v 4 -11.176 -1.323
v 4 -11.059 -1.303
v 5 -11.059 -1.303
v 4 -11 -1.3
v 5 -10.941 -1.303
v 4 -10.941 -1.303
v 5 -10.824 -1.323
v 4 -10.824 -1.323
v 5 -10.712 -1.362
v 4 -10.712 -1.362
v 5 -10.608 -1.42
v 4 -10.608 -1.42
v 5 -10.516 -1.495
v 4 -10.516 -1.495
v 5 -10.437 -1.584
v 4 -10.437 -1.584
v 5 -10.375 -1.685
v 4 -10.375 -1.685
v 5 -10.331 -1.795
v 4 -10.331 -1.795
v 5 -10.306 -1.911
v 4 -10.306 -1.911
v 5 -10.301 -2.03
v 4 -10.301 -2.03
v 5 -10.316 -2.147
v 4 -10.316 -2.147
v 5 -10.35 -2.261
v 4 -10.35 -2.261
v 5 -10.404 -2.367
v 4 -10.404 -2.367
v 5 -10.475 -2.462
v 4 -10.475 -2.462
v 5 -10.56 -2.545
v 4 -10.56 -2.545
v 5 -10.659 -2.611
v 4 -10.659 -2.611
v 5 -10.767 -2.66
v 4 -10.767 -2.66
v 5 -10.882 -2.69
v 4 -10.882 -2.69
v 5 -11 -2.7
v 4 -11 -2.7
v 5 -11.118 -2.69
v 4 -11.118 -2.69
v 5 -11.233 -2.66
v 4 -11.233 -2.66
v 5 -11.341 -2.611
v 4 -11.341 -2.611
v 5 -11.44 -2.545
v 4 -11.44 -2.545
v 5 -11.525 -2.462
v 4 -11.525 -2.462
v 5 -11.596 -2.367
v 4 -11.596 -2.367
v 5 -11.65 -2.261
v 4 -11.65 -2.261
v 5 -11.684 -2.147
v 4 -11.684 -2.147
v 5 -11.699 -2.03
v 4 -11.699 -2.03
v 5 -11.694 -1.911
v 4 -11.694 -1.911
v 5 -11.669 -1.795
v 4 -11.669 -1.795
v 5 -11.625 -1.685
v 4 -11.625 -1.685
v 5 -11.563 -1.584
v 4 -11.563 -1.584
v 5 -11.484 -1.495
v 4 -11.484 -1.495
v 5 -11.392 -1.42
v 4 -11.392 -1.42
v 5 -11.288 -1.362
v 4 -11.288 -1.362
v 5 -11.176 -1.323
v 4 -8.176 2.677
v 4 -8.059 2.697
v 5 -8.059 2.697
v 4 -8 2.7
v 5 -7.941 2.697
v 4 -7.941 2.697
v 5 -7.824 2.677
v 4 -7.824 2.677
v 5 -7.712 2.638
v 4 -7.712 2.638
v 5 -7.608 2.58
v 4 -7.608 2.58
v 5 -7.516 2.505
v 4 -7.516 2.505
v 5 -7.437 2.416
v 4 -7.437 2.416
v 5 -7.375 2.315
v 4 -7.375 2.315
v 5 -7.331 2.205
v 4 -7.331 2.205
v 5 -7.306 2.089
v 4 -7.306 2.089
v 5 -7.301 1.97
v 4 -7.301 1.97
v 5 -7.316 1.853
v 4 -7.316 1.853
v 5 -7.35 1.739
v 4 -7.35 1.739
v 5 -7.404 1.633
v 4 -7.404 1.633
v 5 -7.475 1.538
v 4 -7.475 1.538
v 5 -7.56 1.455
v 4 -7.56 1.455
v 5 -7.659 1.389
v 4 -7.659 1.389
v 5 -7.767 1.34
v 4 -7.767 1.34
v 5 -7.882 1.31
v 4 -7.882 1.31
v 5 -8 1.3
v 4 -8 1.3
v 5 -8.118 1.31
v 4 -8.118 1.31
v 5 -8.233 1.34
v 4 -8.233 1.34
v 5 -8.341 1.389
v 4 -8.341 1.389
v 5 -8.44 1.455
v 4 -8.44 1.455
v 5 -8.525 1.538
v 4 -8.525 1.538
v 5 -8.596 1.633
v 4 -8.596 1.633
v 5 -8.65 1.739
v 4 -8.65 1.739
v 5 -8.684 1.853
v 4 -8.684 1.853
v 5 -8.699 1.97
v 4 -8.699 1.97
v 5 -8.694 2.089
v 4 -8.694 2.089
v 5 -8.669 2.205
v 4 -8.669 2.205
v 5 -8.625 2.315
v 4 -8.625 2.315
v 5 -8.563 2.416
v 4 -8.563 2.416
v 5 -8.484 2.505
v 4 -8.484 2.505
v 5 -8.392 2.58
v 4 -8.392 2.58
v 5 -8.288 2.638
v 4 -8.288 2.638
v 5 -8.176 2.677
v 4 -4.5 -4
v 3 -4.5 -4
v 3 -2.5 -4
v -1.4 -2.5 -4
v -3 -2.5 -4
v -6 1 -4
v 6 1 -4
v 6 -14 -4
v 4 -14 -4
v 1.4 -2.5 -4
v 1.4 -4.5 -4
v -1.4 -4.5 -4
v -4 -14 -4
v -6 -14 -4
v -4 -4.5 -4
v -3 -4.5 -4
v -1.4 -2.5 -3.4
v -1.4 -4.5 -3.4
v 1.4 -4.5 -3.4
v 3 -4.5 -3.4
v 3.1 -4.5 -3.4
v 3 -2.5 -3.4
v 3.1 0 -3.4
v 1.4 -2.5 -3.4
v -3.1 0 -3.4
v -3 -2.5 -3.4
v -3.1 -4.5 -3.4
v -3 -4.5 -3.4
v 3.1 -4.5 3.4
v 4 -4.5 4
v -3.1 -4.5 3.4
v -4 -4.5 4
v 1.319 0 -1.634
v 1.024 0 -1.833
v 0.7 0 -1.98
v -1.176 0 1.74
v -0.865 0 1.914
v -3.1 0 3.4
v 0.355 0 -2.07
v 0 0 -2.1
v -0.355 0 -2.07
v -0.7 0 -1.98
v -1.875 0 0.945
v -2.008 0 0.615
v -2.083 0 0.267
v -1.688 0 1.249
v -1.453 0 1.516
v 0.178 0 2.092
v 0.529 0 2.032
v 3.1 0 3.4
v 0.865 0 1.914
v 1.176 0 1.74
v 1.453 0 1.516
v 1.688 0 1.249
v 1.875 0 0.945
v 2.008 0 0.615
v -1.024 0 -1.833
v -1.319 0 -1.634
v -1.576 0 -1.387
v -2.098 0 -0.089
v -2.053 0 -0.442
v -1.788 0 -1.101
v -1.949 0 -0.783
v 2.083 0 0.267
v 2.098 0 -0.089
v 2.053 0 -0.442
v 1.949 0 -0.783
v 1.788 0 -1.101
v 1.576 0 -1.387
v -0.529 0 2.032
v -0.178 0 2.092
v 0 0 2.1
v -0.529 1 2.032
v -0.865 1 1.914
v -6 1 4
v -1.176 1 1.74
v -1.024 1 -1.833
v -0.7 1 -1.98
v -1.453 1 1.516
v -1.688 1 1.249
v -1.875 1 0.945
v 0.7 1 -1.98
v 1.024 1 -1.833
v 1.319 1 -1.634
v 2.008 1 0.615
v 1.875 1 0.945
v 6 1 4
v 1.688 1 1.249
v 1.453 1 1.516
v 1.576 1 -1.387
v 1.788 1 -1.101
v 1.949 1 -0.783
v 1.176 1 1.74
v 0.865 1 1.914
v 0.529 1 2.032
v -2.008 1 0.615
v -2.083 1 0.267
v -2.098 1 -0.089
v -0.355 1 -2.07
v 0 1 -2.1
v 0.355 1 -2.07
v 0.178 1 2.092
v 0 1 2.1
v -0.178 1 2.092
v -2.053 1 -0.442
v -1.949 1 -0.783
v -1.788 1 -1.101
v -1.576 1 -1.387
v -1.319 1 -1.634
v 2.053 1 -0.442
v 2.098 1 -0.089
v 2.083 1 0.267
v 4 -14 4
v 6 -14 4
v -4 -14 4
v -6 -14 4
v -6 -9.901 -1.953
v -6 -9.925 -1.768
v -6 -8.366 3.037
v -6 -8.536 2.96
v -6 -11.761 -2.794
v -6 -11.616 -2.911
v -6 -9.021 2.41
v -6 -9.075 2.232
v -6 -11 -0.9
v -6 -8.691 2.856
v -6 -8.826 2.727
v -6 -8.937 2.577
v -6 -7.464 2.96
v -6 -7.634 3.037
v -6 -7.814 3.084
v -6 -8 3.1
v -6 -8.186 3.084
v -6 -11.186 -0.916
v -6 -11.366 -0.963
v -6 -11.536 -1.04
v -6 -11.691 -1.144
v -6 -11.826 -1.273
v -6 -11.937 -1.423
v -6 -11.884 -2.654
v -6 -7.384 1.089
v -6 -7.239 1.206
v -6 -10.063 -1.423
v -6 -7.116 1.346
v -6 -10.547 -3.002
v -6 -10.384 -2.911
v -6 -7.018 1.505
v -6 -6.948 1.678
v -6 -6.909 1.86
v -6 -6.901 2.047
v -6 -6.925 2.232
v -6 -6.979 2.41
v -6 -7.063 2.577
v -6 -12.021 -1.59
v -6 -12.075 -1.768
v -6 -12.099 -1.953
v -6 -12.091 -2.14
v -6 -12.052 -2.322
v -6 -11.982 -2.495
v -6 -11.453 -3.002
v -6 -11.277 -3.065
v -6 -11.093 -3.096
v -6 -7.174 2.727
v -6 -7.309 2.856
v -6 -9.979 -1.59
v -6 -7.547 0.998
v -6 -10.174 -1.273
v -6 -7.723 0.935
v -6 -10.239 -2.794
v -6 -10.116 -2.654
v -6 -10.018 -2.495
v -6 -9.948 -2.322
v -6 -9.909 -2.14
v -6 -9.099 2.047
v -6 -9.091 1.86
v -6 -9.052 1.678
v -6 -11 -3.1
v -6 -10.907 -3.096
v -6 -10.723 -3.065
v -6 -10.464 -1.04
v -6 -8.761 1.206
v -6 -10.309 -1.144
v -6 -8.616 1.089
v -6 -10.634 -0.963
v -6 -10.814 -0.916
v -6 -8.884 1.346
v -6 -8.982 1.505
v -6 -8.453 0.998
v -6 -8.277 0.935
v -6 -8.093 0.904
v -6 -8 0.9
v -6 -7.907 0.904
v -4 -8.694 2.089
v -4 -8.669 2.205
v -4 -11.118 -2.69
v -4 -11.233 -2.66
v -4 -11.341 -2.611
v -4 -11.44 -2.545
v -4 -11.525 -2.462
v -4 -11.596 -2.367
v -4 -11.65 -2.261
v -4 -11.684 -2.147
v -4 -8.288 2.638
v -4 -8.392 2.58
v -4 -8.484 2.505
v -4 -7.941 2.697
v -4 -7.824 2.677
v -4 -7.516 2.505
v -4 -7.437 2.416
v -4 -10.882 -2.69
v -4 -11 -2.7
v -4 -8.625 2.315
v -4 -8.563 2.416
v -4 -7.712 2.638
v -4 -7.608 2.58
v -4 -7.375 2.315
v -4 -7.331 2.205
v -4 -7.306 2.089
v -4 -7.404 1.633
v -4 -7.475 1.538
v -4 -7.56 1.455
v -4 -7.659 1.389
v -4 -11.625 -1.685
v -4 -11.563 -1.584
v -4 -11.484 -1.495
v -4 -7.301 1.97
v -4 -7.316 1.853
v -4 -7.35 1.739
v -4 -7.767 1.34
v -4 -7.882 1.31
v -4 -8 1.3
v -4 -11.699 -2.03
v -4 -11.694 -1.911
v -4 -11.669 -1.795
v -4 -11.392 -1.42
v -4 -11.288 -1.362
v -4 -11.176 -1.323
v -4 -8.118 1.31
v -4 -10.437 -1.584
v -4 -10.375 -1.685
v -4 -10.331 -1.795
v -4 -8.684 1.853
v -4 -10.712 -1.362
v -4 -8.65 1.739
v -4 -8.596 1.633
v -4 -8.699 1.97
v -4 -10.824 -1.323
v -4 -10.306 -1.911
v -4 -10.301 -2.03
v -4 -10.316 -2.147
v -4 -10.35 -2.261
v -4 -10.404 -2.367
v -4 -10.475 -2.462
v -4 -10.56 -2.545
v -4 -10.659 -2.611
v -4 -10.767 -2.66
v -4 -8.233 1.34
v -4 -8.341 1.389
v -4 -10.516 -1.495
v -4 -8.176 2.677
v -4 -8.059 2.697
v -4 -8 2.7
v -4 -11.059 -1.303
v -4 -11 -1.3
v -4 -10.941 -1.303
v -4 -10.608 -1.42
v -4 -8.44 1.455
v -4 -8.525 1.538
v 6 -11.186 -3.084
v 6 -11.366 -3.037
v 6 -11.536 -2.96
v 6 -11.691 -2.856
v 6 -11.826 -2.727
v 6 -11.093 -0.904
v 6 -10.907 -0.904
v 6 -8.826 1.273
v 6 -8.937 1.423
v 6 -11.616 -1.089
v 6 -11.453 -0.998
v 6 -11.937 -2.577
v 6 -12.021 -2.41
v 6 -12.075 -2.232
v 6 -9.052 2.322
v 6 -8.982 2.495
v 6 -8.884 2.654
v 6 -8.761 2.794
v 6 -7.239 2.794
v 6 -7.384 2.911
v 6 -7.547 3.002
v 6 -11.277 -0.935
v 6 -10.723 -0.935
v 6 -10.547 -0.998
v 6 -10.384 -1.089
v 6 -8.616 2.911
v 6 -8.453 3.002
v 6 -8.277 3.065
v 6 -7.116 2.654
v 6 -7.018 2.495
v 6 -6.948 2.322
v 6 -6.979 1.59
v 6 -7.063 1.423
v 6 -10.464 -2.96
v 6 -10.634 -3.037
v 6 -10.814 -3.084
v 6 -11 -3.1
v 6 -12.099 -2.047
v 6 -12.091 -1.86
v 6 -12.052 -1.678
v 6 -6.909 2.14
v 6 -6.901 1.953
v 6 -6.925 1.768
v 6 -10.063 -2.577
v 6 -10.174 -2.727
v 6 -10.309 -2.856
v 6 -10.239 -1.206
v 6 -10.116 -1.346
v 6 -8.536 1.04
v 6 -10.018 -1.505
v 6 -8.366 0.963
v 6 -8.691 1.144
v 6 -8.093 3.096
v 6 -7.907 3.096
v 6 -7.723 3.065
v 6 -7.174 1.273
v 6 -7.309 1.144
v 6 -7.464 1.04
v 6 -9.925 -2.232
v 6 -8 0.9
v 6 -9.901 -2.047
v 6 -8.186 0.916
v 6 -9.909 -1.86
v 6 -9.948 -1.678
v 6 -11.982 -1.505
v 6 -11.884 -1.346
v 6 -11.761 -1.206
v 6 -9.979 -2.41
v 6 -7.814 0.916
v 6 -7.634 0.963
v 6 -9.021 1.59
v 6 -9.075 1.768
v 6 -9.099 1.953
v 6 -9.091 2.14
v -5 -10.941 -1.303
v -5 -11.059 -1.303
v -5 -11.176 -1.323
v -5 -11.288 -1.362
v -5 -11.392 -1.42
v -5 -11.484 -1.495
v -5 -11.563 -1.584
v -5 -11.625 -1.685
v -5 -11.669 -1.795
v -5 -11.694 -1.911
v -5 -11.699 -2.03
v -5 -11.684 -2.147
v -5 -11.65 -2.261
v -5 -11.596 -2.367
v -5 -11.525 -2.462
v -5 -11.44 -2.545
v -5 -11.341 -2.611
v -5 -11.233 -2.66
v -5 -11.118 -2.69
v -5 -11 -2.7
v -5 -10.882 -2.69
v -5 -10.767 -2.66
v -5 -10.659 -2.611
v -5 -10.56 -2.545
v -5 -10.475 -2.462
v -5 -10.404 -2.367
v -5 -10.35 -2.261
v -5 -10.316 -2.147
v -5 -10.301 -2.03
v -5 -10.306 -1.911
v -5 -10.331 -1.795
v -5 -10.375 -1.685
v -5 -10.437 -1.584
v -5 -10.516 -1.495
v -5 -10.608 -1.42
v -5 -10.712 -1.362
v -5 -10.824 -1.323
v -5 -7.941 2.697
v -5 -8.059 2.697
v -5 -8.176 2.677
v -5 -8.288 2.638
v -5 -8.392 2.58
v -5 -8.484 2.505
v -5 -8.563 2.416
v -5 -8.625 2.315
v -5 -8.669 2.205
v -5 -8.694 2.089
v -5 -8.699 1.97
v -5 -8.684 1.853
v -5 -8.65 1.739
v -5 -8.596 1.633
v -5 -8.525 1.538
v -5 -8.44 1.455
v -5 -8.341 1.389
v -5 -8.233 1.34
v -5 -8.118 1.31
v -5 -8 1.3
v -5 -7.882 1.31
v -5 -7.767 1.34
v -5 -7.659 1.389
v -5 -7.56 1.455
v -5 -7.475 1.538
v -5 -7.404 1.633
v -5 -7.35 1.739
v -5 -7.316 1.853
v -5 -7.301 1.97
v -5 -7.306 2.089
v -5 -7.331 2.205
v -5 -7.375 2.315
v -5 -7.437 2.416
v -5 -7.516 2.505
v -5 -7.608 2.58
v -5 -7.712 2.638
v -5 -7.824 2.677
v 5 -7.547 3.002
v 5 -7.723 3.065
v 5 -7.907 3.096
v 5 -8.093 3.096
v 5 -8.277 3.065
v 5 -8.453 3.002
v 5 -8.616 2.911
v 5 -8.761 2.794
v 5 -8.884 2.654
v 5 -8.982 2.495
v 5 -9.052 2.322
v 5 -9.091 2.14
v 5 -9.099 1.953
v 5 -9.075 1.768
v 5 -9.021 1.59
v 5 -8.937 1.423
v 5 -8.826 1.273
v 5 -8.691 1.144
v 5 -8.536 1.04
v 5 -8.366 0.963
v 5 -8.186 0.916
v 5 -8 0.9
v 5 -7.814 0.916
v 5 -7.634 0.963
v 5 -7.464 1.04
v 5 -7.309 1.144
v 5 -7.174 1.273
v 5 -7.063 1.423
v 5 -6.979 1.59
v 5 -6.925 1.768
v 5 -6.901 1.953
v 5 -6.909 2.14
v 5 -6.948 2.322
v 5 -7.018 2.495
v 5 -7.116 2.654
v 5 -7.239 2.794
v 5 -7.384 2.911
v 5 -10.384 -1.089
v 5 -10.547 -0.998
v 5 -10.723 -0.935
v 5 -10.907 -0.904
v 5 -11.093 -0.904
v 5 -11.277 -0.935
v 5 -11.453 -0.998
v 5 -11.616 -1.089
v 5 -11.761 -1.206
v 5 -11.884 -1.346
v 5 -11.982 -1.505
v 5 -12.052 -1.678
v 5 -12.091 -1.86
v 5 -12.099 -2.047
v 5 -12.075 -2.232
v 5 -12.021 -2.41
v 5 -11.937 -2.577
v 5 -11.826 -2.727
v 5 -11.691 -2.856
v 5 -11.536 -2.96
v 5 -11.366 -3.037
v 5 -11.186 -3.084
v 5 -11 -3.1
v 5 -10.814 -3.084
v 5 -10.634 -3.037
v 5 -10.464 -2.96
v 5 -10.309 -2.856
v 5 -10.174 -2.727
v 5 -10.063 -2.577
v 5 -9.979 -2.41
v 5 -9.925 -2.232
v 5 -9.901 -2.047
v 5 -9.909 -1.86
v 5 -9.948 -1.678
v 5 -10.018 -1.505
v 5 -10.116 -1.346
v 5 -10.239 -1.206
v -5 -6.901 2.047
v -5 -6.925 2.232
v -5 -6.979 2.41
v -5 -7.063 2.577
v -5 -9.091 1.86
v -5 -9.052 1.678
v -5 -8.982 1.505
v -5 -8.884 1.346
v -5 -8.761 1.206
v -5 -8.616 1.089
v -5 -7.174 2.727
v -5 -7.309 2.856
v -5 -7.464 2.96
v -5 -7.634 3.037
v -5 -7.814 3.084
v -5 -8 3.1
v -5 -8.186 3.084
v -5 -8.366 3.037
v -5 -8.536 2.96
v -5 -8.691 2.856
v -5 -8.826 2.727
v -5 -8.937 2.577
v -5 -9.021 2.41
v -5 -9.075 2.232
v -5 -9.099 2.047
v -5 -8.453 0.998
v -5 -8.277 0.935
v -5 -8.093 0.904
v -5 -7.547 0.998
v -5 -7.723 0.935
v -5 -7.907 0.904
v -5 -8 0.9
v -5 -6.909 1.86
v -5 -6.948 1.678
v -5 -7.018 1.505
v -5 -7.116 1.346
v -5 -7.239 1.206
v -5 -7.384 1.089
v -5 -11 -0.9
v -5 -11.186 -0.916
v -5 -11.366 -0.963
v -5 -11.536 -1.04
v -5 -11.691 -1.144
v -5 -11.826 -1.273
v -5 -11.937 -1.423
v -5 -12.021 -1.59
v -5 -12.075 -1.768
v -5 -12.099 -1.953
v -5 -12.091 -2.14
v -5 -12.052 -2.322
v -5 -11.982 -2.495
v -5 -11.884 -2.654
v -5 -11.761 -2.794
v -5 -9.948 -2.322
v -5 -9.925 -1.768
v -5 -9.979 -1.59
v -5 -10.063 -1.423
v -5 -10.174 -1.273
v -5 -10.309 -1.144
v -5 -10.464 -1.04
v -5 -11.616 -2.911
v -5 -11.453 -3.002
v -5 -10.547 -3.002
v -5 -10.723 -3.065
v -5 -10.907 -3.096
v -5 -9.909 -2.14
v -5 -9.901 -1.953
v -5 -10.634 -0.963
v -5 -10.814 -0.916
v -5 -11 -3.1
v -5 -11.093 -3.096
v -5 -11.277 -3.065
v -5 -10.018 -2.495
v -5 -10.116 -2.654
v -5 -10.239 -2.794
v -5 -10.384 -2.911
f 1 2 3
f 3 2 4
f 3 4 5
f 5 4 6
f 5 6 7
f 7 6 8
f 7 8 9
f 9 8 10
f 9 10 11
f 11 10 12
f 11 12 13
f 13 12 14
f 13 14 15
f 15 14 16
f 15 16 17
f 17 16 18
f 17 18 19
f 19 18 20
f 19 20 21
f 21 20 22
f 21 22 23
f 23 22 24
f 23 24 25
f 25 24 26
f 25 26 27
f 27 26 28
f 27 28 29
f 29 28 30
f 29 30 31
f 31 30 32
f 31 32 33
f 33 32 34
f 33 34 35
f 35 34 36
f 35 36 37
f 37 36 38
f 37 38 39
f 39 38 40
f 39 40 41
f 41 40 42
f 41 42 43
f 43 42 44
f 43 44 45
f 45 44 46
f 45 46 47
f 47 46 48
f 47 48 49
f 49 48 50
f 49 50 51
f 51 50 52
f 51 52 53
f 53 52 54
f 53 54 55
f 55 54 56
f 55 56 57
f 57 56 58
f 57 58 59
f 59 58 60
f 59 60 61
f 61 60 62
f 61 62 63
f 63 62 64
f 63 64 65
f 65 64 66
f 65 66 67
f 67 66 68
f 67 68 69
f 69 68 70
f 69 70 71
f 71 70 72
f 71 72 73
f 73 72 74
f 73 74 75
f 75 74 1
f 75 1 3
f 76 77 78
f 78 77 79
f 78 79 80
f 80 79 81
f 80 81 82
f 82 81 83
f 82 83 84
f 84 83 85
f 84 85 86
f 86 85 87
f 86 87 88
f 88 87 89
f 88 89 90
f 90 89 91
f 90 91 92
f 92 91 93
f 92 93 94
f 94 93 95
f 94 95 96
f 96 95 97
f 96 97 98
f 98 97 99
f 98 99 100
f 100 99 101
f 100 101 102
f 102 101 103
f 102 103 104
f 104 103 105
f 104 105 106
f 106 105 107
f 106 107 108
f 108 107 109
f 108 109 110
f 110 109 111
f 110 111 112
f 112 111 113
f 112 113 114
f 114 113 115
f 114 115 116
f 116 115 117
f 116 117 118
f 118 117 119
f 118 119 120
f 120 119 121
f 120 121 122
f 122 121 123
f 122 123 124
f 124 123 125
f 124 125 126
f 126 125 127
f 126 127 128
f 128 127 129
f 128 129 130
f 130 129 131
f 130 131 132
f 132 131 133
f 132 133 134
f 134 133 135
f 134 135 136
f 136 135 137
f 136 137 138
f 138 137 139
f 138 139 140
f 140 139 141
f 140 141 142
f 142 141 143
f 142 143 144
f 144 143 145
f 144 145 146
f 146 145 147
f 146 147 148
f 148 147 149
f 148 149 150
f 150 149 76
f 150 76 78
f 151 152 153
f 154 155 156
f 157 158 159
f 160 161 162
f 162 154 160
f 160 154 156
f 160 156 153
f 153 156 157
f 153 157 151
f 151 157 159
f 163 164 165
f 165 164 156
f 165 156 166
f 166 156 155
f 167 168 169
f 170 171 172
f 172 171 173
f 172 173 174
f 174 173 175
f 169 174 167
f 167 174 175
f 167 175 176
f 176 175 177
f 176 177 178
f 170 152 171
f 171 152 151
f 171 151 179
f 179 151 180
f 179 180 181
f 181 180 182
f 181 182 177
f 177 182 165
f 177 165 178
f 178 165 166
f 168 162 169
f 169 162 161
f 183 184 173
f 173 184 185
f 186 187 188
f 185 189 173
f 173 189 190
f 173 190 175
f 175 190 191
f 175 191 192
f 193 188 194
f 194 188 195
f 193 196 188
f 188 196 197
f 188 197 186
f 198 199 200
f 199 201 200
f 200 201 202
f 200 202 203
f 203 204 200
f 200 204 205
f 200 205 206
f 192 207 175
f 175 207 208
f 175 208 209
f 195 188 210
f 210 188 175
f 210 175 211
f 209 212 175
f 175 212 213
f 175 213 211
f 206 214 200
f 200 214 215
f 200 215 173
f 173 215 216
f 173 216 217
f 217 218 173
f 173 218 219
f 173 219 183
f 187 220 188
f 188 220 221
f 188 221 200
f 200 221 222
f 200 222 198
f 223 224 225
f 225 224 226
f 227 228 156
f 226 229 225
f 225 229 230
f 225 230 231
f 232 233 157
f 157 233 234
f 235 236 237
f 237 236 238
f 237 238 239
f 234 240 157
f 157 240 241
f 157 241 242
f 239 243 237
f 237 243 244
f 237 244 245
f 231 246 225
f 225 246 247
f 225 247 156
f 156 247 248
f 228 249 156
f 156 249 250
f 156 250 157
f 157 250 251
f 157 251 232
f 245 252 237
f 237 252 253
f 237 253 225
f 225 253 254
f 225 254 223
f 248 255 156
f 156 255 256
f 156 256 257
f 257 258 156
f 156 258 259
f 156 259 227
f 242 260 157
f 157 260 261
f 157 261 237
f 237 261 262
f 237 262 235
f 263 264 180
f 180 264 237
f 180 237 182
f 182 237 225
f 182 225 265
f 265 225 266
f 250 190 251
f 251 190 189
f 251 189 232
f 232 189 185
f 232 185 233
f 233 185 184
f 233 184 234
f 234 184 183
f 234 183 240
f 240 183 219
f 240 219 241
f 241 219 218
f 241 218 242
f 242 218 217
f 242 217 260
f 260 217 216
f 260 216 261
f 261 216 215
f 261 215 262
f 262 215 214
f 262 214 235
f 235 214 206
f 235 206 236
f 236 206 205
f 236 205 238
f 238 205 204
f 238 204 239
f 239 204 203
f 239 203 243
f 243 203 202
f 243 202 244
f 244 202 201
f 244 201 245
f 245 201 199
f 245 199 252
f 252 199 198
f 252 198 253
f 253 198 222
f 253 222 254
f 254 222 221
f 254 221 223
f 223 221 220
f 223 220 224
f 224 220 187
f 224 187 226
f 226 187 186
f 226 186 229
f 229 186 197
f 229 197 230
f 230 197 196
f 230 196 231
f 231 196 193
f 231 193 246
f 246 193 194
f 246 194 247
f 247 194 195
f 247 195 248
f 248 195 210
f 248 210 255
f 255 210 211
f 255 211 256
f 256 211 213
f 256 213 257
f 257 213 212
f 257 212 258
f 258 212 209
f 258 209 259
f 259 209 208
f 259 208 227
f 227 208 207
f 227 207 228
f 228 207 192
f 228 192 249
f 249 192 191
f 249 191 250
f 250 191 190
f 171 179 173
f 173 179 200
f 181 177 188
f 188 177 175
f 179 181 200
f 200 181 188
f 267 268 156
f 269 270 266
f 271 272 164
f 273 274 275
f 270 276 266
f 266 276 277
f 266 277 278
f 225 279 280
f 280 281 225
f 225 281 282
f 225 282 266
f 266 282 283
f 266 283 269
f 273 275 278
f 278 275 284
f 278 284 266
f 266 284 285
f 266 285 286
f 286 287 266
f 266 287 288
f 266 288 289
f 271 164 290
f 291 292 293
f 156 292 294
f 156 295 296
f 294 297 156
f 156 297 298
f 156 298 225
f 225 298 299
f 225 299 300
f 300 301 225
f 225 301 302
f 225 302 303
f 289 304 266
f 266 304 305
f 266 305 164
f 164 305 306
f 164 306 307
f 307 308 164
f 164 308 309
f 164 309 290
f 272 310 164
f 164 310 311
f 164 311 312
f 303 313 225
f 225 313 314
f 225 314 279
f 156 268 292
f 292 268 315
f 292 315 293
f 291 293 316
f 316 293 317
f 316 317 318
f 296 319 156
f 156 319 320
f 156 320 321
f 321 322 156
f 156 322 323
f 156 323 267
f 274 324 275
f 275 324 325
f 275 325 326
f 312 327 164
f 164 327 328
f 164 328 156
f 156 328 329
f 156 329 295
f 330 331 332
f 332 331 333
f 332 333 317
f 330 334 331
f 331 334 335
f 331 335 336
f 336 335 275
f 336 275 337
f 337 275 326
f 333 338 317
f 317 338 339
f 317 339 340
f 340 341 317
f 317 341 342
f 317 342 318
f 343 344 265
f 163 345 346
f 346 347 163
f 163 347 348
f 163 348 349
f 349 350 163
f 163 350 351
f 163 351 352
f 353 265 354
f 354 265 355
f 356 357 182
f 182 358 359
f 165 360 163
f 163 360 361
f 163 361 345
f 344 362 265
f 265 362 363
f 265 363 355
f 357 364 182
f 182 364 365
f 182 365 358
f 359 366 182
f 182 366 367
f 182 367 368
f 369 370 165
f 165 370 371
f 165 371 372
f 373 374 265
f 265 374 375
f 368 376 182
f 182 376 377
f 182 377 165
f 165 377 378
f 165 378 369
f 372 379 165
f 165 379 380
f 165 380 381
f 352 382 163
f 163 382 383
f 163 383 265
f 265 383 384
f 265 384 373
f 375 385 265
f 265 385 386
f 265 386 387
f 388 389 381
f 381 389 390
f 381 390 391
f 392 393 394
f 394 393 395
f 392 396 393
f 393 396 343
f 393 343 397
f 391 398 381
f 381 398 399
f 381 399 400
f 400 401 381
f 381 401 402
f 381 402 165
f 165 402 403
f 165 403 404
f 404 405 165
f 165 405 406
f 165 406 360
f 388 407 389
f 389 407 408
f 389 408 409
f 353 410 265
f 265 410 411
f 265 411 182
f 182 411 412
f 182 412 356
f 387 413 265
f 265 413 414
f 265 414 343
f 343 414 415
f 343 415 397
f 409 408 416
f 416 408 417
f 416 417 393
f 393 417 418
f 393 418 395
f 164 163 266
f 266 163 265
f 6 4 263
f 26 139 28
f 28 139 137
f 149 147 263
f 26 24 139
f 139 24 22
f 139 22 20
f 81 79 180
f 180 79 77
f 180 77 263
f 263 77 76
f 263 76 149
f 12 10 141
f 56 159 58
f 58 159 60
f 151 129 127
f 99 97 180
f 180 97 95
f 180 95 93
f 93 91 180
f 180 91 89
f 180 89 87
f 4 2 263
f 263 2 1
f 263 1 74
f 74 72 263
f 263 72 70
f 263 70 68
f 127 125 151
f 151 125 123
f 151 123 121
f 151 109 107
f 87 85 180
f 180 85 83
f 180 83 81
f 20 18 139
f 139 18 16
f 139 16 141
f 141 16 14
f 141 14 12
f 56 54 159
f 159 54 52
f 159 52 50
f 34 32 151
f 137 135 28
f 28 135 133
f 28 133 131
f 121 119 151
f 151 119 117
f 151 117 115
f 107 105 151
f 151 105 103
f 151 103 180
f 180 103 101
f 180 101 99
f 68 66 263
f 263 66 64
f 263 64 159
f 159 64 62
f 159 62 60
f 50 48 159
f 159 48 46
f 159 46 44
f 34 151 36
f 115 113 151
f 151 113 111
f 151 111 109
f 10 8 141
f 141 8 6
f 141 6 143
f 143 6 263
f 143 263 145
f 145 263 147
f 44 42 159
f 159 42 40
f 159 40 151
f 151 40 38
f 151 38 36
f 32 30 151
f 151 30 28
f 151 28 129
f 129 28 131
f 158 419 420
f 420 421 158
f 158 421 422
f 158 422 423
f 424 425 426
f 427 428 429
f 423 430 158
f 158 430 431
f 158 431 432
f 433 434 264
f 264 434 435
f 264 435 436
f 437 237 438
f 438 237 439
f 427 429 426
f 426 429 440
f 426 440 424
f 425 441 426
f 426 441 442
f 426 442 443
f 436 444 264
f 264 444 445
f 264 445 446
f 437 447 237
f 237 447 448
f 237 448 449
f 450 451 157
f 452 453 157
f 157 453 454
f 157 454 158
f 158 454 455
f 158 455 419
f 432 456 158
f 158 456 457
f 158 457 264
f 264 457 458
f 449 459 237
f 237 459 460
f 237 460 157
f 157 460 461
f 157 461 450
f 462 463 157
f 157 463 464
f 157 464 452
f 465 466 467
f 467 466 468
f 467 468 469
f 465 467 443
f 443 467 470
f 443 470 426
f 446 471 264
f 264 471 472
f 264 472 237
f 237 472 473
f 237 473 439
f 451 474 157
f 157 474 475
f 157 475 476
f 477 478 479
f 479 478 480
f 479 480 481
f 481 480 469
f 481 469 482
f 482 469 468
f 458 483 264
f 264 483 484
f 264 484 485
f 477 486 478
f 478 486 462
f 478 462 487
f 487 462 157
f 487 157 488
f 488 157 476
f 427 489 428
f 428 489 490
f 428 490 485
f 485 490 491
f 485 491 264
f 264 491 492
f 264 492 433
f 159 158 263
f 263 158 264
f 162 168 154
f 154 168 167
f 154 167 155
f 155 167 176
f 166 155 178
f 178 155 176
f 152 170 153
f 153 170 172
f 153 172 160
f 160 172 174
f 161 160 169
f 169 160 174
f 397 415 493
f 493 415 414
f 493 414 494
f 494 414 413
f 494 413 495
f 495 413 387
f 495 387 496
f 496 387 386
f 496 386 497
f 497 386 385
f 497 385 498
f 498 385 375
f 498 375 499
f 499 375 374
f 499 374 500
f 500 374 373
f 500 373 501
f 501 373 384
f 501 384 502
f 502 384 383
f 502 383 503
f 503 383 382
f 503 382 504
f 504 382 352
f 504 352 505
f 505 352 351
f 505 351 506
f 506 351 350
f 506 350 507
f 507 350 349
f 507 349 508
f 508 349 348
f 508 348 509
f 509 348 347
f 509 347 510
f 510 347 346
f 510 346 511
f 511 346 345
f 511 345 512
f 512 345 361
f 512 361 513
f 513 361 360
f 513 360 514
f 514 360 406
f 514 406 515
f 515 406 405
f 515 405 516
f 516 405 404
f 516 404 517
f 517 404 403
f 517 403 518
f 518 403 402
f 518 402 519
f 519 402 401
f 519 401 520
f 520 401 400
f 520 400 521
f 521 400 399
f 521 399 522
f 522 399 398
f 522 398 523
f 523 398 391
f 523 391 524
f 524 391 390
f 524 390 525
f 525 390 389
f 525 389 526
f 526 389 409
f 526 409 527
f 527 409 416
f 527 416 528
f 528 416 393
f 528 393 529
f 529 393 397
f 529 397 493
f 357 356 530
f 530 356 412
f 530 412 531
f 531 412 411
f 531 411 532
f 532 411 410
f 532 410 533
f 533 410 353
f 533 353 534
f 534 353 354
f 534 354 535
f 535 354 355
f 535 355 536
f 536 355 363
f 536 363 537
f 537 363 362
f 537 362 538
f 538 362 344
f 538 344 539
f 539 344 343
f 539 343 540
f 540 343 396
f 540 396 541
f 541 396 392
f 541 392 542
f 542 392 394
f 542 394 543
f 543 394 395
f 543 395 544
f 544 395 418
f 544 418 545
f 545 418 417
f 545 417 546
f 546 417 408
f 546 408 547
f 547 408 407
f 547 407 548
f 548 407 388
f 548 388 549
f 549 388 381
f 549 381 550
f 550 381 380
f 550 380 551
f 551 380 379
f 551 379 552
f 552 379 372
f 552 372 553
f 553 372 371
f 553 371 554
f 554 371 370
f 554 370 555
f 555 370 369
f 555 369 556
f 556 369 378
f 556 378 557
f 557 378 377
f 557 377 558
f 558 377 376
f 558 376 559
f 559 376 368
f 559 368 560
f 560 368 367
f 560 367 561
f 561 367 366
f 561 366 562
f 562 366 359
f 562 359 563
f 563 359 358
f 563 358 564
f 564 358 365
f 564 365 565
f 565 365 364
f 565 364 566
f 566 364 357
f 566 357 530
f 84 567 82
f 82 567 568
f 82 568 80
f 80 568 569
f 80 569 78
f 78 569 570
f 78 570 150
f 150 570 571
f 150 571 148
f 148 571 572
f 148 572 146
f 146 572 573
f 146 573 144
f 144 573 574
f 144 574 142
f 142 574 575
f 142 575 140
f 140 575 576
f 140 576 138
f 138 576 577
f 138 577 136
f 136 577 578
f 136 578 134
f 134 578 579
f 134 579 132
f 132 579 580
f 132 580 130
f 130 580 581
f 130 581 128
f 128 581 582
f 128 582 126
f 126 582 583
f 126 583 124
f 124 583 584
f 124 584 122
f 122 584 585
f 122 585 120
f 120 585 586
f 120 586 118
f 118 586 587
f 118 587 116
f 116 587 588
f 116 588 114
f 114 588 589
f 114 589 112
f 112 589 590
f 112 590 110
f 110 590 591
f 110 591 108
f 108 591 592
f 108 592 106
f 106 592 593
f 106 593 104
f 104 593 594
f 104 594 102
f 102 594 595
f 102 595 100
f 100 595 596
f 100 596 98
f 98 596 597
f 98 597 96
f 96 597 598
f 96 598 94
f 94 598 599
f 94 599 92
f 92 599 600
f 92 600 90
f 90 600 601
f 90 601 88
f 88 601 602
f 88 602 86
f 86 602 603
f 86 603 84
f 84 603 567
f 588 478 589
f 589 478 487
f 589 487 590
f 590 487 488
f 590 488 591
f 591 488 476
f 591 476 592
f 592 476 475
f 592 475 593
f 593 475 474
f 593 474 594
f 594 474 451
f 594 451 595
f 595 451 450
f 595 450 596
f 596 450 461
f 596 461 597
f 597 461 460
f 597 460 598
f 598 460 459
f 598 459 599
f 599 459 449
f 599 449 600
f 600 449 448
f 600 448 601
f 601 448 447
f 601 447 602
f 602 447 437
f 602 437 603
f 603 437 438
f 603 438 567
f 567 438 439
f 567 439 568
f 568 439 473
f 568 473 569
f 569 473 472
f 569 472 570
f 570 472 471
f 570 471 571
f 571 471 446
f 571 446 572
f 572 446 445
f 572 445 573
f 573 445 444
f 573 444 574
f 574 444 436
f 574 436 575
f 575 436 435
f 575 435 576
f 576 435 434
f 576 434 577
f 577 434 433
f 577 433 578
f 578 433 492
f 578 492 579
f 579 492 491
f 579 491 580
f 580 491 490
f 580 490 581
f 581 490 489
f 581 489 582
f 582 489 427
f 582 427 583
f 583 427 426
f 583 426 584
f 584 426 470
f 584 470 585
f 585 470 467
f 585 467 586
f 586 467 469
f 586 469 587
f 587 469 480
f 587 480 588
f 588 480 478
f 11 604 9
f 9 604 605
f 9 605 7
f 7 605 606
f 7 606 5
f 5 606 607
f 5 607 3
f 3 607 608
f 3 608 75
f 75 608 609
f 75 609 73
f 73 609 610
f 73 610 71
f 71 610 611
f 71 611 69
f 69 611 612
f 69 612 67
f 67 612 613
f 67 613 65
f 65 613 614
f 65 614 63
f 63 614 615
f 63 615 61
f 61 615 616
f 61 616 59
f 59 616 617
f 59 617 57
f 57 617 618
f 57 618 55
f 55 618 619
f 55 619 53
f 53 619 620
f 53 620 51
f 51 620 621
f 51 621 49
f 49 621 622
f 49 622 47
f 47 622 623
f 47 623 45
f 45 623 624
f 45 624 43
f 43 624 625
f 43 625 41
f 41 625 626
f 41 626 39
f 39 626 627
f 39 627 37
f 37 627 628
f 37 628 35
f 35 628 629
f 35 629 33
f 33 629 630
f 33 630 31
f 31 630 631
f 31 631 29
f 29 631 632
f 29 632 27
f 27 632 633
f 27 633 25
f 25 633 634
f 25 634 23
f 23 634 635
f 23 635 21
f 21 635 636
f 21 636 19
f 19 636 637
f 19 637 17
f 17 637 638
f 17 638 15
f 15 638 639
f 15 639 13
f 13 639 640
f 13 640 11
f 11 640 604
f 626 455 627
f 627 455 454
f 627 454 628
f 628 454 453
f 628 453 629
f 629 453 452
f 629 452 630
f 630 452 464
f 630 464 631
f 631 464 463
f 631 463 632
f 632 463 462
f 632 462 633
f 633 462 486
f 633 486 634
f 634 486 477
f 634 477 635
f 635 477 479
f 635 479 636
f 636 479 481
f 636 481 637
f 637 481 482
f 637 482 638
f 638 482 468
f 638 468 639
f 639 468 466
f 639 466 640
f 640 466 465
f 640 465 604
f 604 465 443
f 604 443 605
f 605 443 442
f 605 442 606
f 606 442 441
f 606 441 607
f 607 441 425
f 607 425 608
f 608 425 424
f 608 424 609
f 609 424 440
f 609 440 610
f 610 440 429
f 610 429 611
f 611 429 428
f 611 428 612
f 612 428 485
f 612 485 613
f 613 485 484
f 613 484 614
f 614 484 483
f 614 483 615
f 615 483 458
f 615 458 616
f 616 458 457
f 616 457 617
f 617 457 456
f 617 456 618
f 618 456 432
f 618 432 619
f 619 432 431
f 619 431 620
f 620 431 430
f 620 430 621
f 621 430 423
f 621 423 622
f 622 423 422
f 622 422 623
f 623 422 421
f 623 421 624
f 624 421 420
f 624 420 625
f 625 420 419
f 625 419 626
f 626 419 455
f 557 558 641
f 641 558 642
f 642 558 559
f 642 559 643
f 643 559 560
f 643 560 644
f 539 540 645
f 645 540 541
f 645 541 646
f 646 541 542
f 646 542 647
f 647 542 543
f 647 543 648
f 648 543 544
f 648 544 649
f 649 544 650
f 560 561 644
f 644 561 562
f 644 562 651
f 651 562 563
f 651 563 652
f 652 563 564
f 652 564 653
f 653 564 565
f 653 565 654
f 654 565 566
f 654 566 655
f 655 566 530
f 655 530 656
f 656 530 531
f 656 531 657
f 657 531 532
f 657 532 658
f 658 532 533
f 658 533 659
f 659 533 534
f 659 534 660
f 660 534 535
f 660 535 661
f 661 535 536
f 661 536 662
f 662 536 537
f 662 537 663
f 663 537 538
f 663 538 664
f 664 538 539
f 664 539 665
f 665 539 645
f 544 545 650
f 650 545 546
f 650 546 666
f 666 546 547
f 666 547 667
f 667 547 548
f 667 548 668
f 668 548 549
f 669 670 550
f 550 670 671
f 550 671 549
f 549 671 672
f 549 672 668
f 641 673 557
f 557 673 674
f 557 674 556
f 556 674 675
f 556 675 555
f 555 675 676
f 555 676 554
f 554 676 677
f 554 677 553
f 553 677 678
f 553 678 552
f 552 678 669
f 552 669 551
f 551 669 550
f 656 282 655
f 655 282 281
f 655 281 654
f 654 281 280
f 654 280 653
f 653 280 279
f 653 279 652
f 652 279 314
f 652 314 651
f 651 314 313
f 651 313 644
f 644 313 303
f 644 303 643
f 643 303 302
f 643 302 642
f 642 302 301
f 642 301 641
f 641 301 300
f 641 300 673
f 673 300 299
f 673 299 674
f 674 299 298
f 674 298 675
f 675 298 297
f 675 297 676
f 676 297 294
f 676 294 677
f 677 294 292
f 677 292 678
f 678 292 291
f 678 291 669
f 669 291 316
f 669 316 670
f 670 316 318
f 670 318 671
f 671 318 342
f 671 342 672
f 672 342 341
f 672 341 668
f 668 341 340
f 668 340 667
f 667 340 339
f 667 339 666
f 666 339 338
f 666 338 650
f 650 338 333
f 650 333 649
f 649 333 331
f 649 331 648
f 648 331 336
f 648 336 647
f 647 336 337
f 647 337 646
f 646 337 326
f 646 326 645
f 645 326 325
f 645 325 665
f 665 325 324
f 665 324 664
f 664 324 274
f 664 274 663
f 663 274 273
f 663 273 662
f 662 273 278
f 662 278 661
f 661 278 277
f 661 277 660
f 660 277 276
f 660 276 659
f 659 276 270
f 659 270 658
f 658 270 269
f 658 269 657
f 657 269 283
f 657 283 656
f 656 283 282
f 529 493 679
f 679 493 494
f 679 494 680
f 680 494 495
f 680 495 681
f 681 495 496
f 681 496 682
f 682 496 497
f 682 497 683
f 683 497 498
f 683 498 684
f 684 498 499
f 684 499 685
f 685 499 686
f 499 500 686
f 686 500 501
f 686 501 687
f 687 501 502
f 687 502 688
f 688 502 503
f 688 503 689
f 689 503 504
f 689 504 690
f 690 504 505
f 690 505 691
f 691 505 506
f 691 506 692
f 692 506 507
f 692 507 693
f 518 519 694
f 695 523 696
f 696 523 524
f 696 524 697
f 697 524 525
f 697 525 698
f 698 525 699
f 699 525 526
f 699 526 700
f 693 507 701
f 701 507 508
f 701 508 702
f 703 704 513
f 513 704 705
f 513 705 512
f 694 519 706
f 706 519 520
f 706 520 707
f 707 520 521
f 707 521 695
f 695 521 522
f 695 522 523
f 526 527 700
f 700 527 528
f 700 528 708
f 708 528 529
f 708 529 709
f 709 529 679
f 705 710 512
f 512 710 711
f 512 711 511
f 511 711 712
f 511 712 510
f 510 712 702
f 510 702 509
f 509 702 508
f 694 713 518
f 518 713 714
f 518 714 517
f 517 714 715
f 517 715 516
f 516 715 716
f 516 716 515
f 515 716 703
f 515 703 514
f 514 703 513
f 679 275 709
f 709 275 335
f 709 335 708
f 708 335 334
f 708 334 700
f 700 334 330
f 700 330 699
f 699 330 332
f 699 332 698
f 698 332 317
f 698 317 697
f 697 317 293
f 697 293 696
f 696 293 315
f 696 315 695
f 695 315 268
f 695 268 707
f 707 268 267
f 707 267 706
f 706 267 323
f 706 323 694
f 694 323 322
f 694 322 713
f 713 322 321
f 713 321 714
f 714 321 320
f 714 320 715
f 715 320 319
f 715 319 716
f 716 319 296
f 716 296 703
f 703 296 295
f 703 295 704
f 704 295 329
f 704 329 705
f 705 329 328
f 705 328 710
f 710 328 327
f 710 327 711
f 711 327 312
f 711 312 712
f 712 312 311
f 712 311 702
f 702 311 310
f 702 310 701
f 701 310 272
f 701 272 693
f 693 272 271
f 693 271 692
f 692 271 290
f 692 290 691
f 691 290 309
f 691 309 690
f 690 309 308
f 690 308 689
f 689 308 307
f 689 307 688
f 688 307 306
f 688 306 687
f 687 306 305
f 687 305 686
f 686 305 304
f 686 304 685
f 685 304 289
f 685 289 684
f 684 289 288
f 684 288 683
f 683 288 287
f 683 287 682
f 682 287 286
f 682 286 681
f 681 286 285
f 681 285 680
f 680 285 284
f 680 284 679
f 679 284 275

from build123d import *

# Parameters (mm, degrees)
SKETCH_1_W          = 8
SKETCH_1_H          = 8
SKETCH_1_R          = 2.1
EXTRUDE_1_DEPTH     = 1
EXTRUDE_START       = 1
SKETCH_1_6_W        = 2
SKETCH_1_6_H        = 8
EXTRUDE_2_DEPTH     = 15
EXTRUDE_2_2_DEPTH   = 15
SKETCH_2_W          = 0.9
SKETCH_2_H          = 0.6
SKETCH_2_W_2        = 6.2
SKETCH_2_H_2        = 6.8
EXTRUDE_3_DEPTH     = 4.5
CUT_EXTRUDE_1_REACH = 19.205
SKETCH_3_W          = 1.6
SKETCH_3_H          = 2
SKETCH_4_R          = 0.7
CUT_EXTRUDE_2_DEPTH = 19.867962264
SKETCH_4_3_R        = 1.1
CUT_EXTRUDE_3_DEPTH = 1
CUT_EXTRUDE_START   = -11
SKETCH_4_4_R        = 1.1
CUT_EXTRUDE_4_DEPTH = 1


with BuildPart() as part:
    # 草图1 → 凸台-拉伸1 (new body)
    with BuildSketch(Plane(origin=(0, 0, 0), x_dir=(1, 0, 0), z_dir=(0, 1, 0))):
        Rectangle(SKETCH_1_W, SKETCH_1_H)
        with Locations(Location((0, 0, 0), (0, 0, 270))):
            Circle(SKETCH_1_R, mode=Mode.SUBTRACT)
    extrude(amount=EXTRUDE_1_DEPTH)



with BuildPart() as body_2:
    # 草图1<6> → 凸台-拉伸2 (new body)
    with BuildSketch(Plane(origin=(0, 0, 0), x_dir=(1, 0, 0), z_dir=(0, 1, 0)).offset(EXTRUDE_START)):
        with Locations((-5, 0)):
            Rectangle(SKETCH_1_6_W, SKETCH_1_6_H)
    extrude(amount=-EXTRUDE_2_DEPTH)


with BuildPart() as body_3:
    # 草图1<6> → Extrude 2 2 (new body)
    with BuildSketch(Plane(origin=(0, 0, 0), x_dir=(1, 0, 0), z_dir=(0, 1, 0)).offset(EXTRUDE_START)):
        with Locations((5, 0)):
            Rectangle(SKETCH_1_6_W, SKETCH_1_6_H)
    extrude(amount=-EXTRUDE_2_2_DEPTH)


with BuildPart() as part_1:
    add(part.part)

    add(body_2.part)  # 凸台-拉伸3 merges body 2

    add(body_3.part)  # 凸台-拉伸3 merges body 3
    # 草图2 → 凸台-拉伸3 (add)
    with BuildSketch(Plane.XZ):
        with Locations((-3.55, 3.7)):
            Rectangle(SKETCH_2_W, SKETCH_2_H)
        with Locations((0, 3.7)):
            Rectangle(SKETCH_2_W_2, SKETCH_2_H)
        with Locations((3.55, 3.7)):
            Rectangle(SKETCH_2_W, SKETCH_2_H)
        with Locations((3.55, 0)):
            Rectangle(SKETCH_2_W, SKETCH_2_H_2)
        with Locations((3.55, -3.7)):
            Rectangle(SKETCH_2_W, SKETCH_2_H)
        with Locations((0, -3.7)):
            Rectangle(SKETCH_2_W_2, SKETCH_2_H)
        with Locations((-3.55, -3.7)):
            Rectangle(SKETCH_2_W, SKETCH_2_H)
        with Locations((-3.55, 0)):
            Rectangle(SKETCH_2_W, SKETCH_2_H_2)
    extrude(amount=EXTRUDE_3_DEPTH)

    # 草图3 → 切除-拉伸1 (cut, up to next)
    with BuildSketch(Plane(origin=(0, 0, -4), x_dir=(-1, 0, 0), z_dir=(0, 0, -1)), mode=Mode.PRIVATE) as cut_extrude_1_sk1:
        with Locations((-2.2, -3.5)):
            Rectangle(SKETCH_3_W, SKETCH_3_H)
    cut_extrude_1_tool1 = extrude(cut_extrude_1_sk1.sketch, amount=-CUT_EXTRUDE_1_REACH, mode=Mode.PRIVATE) & part_1.part
    # 草图3 → 切除-拉伸1 (cut, up to next)
    with BuildSketch(Plane(origin=(0, 0, -4), x_dir=(-1, 0, 0), z_dir=(0, 0, -1)), mode=Mode.PRIVATE) as cut_extrude_1_sk2:
        with Locations((2.2, -3.5)):
            Rectangle(SKETCH_3_W, SKETCH_3_H)
    cut_extrude_1_tool2 = extrude(cut_extrude_1_sk2.sketch, amount=-CUT_EXTRUDE_1_REACH, mode=Mode.PRIVATE) & part_1.part
    add(cut_extrude_1_tool1.solids().sort_by_distance((2.2, -3.5, -4))[0], mode=Mode.SUBTRACT)
    add(cut_extrude_1_tool2.solids().sort_by_distance((-2.2, -3.5, -4))[0], mode=Mode.SUBTRACT)

    # 草图4 → 切除-拉伸2 (cut, through all)
    with BuildSketch(Plane(origin=(6, 0, 0), x_dir=(0, 0, -1), z_dir=(1, 0, 0))):
        with Locations((-2, -8)):
            Circle(SKETCH_4_R)
        with Locations((2, -11)):
            Circle(SKETCH_4_R)
    extrude(amount=-CUT_EXTRUDE_2_DEPTH, mode=Mode.SUBTRACT)

    # 草图4<3> → 切除-拉伸3 (cut)
    with BuildSketch(Plane(origin=(6, 0, 0), x_dir=(0, 0, -1), z_dir=(1, 0, 0))):
        with Locations((-2, -8)):
            Circle(SKETCH_4_3_R)
        with Locations((2, -11)):
            Circle(SKETCH_4_3_R)
    extrude(amount=-CUT_EXTRUDE_3_DEPTH, mode=Mode.SUBTRACT)

    # 草图4<4> → 切除-拉伸4 (cut)
    with BuildSketch(Plane(origin=(6, 0, 0), x_dir=(0, 0, -1), z_dir=(1, 0, 0)).offset(CUT_EXTRUDE_START)):
        with Locations((-2, -8)):
            Circle(SKETCH_4_4_R)
        with Locations((2, -11)):
            Circle(SKETCH_4_4_R)
    extrude(amount=-CUT_EXTRUDE_4_DEPTH, mode=Mode.SUBTRACT)


solid = part_1.part
